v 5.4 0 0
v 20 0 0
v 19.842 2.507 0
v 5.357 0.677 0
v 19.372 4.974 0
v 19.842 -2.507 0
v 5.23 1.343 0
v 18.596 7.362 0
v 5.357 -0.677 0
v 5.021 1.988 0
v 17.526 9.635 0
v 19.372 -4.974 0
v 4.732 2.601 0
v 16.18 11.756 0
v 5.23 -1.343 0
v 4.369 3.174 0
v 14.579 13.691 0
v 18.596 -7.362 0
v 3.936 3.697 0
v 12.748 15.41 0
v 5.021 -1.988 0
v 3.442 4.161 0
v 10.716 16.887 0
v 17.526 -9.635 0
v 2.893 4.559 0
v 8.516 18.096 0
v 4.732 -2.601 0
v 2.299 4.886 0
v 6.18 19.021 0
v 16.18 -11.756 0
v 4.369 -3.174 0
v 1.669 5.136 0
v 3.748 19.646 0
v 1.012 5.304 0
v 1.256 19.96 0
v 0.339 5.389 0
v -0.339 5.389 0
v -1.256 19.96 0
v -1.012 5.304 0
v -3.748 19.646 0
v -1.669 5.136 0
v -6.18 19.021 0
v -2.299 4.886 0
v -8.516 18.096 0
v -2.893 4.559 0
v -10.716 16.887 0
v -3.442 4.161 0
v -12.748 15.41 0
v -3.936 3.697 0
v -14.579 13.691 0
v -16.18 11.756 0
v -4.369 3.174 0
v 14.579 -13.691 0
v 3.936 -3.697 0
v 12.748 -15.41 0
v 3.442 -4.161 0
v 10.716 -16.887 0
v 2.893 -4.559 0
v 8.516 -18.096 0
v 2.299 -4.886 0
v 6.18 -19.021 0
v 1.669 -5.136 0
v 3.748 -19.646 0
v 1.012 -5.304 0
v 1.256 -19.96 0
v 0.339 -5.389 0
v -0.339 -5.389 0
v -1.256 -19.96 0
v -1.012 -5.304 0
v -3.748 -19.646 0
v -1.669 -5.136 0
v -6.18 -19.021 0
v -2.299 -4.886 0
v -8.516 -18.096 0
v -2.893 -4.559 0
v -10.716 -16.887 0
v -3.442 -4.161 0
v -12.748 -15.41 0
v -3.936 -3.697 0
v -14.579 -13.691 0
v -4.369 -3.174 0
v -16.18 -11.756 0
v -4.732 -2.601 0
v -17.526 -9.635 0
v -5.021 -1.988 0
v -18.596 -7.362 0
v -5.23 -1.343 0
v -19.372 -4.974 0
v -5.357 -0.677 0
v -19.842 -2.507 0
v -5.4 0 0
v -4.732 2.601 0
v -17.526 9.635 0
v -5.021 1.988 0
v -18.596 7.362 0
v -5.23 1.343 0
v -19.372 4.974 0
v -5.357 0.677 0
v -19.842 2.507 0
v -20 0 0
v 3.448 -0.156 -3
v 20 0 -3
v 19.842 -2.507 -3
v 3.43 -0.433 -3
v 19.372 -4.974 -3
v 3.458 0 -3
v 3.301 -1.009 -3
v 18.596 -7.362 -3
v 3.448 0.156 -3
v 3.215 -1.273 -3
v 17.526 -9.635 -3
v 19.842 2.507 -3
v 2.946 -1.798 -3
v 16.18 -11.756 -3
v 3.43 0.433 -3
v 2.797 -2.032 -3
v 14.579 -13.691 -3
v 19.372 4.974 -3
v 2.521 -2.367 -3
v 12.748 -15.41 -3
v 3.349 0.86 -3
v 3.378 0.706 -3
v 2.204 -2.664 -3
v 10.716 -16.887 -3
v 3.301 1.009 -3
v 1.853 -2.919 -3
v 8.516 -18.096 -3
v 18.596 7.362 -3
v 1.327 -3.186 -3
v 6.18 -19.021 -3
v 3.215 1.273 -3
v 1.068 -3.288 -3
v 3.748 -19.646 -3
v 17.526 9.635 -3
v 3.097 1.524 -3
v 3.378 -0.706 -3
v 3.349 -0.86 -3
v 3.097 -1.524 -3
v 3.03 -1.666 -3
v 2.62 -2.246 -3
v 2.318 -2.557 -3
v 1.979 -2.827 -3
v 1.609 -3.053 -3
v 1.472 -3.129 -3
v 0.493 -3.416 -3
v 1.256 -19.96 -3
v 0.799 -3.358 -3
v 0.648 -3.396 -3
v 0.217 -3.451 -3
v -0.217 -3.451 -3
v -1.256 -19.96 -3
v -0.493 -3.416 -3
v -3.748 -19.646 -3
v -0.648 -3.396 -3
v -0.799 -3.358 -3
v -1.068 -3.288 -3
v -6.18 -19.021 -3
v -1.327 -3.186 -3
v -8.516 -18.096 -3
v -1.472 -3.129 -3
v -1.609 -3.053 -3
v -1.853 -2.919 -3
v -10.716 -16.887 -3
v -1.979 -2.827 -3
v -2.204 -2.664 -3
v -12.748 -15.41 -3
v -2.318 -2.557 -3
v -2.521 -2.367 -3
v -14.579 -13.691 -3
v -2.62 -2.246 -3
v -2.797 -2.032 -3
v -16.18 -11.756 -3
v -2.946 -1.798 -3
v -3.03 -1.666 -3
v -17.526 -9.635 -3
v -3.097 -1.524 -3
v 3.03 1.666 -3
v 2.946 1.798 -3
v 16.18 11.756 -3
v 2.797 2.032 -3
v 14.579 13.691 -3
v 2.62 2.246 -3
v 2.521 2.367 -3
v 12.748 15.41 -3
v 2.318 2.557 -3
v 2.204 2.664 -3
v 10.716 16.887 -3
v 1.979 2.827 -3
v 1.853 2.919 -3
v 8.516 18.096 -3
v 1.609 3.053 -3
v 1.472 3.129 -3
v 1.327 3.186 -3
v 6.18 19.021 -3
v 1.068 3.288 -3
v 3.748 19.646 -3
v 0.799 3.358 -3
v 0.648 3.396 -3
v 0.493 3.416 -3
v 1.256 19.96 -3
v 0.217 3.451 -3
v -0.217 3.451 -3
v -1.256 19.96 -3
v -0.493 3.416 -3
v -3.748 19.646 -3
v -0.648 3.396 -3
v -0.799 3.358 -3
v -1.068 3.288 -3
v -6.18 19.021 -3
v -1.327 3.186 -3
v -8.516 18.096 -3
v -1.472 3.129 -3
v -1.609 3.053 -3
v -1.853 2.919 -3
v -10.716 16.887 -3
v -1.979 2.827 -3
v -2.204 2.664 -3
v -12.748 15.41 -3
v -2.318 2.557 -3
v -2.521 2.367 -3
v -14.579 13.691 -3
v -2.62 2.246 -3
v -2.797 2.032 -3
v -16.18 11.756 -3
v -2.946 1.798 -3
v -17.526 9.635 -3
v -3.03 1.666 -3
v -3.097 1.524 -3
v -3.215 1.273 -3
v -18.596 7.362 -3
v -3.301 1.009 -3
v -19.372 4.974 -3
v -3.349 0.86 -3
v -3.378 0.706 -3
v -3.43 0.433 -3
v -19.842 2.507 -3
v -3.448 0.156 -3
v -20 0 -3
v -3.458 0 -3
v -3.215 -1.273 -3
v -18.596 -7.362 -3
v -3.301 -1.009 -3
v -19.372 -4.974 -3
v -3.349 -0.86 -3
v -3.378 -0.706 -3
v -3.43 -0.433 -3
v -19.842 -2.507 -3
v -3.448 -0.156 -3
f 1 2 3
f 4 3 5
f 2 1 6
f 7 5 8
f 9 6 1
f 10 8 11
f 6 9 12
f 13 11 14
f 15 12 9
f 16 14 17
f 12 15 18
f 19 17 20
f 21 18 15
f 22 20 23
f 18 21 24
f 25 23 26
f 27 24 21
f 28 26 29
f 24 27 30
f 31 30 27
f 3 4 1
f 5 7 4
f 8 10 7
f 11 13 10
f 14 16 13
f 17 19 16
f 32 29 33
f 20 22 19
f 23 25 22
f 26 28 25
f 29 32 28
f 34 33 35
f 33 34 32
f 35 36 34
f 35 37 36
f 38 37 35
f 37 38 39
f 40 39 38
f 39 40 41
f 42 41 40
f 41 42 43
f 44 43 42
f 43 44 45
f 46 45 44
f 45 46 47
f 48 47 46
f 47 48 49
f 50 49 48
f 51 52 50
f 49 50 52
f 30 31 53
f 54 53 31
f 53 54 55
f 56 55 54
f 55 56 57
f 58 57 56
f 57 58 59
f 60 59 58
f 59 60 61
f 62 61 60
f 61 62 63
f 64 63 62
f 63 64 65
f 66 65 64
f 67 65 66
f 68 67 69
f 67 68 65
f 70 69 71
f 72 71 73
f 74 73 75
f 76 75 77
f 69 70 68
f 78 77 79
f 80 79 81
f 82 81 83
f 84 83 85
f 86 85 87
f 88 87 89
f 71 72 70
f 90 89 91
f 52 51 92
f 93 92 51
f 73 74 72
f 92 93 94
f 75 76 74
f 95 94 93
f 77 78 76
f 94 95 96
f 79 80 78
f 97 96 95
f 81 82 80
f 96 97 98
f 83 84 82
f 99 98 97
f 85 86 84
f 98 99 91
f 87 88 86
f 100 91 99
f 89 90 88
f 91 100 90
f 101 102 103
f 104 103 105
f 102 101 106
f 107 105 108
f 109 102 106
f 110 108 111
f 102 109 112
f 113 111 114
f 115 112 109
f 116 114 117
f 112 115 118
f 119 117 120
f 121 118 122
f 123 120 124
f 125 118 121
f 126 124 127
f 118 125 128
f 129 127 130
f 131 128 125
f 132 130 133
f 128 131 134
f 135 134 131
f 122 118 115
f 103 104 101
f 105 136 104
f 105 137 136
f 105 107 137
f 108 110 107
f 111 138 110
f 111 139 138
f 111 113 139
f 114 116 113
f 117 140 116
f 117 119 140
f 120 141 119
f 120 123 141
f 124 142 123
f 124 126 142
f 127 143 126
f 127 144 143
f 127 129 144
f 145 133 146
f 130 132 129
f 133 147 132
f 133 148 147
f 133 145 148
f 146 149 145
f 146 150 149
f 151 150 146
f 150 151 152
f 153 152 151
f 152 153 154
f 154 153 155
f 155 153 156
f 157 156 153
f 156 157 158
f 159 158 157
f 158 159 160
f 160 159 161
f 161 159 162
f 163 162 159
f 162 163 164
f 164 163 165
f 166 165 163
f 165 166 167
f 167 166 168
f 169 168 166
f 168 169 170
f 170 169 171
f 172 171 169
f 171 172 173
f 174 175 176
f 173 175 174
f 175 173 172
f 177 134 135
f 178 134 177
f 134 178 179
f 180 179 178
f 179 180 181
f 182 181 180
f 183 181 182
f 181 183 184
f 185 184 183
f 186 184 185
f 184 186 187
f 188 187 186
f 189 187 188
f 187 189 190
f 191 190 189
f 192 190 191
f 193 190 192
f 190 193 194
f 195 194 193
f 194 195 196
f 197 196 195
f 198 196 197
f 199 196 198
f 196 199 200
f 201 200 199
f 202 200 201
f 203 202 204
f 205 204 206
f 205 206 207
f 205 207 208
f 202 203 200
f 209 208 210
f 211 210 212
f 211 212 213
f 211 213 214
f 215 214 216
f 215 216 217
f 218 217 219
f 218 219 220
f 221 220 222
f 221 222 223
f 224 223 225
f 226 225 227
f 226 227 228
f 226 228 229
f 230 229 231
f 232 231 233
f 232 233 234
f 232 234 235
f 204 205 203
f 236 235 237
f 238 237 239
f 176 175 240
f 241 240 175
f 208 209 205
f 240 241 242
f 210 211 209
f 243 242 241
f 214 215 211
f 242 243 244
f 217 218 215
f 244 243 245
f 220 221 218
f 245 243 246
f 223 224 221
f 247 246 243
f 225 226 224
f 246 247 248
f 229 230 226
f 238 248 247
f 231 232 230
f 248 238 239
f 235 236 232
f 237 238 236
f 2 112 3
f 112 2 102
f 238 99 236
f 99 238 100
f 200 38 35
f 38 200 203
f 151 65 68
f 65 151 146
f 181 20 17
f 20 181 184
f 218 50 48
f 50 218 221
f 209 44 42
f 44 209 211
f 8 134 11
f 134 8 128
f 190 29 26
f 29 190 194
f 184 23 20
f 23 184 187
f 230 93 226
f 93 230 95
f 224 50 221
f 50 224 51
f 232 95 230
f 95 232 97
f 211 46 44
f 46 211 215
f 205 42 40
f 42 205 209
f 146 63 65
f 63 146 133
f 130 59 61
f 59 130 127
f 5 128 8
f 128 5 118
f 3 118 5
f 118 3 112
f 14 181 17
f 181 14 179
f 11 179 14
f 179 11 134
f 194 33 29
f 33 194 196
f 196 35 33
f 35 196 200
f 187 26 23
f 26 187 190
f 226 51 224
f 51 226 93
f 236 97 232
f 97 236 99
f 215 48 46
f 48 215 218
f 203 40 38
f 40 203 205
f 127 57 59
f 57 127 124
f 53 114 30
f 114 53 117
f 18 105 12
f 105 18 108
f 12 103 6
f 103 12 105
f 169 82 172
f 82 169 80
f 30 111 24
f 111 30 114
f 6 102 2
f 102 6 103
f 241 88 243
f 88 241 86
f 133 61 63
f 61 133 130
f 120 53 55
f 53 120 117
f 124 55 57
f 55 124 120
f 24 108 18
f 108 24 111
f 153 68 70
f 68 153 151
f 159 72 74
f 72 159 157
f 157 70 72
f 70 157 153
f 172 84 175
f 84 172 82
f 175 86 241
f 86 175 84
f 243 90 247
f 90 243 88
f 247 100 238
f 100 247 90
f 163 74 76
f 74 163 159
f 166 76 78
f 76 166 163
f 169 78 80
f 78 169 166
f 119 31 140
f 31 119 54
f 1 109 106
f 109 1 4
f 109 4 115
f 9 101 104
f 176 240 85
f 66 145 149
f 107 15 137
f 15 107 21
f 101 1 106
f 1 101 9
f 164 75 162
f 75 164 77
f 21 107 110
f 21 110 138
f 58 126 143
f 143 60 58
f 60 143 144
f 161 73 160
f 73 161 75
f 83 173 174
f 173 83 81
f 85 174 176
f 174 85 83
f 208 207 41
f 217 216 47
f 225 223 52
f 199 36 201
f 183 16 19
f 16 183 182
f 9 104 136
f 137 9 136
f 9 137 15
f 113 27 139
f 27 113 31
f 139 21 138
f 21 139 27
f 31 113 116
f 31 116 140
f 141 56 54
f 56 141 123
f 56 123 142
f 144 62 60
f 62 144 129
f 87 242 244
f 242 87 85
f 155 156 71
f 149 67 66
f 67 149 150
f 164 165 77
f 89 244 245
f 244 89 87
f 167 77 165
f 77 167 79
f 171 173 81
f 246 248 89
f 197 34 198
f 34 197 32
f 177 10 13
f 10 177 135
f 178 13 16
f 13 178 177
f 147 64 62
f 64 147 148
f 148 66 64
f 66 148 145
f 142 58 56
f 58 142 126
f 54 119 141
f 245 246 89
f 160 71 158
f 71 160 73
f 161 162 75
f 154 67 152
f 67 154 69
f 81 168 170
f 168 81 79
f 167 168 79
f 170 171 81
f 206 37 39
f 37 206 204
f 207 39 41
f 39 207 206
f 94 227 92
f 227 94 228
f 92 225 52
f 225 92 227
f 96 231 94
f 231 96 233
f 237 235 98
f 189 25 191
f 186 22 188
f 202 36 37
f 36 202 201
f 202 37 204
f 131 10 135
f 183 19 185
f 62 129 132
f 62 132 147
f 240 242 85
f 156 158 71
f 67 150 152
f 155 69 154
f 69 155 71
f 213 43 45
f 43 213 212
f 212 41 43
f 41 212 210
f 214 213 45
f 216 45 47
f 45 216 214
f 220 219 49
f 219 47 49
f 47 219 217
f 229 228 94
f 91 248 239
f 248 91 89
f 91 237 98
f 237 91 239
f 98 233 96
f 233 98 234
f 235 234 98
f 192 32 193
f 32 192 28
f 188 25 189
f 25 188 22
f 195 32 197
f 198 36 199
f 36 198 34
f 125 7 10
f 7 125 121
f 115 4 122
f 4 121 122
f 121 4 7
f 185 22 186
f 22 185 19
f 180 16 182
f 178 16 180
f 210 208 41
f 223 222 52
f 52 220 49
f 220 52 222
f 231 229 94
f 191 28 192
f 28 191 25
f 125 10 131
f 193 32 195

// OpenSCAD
$fn = 50;


difference() {
	union() {
		translate(v = [0, 0, -3.0000000000]) {
			cylinder(h = 3, r = 10.0000000000);
		}
		translate(v = [0, 0, -3.0000000000]) {
			cylinder(h = 3, r = 20.0000000000);
		}
	}
	union() {
		translate(v = [0, 0, 0]) {
			rotate(a = [0, 0, 0]) {
				difference() {
					union() {
						#translate(v = [0, 0, -3.0000000000]) {
							cylinder(h = 3, r = 2.6000000000);
						}
						#translate(v = [0, 0, -3.9000000000]) {
							cylinder(h = 3.9000000000, r = 10.0000000000, r1 = 2.8750000000, r2 = 5.4000000000);
						}
						#translate(v = [0, 0, -3.0000000000]) {
							cylinder(h = 3, r = 2.8750000000);
						}
						#translate(v = [0, 0, -3.0000000000]) {
							cylinder(h = 3, r = 2.6000000000);
						}
					}
					union();
				}
			}
		}
	}
}
